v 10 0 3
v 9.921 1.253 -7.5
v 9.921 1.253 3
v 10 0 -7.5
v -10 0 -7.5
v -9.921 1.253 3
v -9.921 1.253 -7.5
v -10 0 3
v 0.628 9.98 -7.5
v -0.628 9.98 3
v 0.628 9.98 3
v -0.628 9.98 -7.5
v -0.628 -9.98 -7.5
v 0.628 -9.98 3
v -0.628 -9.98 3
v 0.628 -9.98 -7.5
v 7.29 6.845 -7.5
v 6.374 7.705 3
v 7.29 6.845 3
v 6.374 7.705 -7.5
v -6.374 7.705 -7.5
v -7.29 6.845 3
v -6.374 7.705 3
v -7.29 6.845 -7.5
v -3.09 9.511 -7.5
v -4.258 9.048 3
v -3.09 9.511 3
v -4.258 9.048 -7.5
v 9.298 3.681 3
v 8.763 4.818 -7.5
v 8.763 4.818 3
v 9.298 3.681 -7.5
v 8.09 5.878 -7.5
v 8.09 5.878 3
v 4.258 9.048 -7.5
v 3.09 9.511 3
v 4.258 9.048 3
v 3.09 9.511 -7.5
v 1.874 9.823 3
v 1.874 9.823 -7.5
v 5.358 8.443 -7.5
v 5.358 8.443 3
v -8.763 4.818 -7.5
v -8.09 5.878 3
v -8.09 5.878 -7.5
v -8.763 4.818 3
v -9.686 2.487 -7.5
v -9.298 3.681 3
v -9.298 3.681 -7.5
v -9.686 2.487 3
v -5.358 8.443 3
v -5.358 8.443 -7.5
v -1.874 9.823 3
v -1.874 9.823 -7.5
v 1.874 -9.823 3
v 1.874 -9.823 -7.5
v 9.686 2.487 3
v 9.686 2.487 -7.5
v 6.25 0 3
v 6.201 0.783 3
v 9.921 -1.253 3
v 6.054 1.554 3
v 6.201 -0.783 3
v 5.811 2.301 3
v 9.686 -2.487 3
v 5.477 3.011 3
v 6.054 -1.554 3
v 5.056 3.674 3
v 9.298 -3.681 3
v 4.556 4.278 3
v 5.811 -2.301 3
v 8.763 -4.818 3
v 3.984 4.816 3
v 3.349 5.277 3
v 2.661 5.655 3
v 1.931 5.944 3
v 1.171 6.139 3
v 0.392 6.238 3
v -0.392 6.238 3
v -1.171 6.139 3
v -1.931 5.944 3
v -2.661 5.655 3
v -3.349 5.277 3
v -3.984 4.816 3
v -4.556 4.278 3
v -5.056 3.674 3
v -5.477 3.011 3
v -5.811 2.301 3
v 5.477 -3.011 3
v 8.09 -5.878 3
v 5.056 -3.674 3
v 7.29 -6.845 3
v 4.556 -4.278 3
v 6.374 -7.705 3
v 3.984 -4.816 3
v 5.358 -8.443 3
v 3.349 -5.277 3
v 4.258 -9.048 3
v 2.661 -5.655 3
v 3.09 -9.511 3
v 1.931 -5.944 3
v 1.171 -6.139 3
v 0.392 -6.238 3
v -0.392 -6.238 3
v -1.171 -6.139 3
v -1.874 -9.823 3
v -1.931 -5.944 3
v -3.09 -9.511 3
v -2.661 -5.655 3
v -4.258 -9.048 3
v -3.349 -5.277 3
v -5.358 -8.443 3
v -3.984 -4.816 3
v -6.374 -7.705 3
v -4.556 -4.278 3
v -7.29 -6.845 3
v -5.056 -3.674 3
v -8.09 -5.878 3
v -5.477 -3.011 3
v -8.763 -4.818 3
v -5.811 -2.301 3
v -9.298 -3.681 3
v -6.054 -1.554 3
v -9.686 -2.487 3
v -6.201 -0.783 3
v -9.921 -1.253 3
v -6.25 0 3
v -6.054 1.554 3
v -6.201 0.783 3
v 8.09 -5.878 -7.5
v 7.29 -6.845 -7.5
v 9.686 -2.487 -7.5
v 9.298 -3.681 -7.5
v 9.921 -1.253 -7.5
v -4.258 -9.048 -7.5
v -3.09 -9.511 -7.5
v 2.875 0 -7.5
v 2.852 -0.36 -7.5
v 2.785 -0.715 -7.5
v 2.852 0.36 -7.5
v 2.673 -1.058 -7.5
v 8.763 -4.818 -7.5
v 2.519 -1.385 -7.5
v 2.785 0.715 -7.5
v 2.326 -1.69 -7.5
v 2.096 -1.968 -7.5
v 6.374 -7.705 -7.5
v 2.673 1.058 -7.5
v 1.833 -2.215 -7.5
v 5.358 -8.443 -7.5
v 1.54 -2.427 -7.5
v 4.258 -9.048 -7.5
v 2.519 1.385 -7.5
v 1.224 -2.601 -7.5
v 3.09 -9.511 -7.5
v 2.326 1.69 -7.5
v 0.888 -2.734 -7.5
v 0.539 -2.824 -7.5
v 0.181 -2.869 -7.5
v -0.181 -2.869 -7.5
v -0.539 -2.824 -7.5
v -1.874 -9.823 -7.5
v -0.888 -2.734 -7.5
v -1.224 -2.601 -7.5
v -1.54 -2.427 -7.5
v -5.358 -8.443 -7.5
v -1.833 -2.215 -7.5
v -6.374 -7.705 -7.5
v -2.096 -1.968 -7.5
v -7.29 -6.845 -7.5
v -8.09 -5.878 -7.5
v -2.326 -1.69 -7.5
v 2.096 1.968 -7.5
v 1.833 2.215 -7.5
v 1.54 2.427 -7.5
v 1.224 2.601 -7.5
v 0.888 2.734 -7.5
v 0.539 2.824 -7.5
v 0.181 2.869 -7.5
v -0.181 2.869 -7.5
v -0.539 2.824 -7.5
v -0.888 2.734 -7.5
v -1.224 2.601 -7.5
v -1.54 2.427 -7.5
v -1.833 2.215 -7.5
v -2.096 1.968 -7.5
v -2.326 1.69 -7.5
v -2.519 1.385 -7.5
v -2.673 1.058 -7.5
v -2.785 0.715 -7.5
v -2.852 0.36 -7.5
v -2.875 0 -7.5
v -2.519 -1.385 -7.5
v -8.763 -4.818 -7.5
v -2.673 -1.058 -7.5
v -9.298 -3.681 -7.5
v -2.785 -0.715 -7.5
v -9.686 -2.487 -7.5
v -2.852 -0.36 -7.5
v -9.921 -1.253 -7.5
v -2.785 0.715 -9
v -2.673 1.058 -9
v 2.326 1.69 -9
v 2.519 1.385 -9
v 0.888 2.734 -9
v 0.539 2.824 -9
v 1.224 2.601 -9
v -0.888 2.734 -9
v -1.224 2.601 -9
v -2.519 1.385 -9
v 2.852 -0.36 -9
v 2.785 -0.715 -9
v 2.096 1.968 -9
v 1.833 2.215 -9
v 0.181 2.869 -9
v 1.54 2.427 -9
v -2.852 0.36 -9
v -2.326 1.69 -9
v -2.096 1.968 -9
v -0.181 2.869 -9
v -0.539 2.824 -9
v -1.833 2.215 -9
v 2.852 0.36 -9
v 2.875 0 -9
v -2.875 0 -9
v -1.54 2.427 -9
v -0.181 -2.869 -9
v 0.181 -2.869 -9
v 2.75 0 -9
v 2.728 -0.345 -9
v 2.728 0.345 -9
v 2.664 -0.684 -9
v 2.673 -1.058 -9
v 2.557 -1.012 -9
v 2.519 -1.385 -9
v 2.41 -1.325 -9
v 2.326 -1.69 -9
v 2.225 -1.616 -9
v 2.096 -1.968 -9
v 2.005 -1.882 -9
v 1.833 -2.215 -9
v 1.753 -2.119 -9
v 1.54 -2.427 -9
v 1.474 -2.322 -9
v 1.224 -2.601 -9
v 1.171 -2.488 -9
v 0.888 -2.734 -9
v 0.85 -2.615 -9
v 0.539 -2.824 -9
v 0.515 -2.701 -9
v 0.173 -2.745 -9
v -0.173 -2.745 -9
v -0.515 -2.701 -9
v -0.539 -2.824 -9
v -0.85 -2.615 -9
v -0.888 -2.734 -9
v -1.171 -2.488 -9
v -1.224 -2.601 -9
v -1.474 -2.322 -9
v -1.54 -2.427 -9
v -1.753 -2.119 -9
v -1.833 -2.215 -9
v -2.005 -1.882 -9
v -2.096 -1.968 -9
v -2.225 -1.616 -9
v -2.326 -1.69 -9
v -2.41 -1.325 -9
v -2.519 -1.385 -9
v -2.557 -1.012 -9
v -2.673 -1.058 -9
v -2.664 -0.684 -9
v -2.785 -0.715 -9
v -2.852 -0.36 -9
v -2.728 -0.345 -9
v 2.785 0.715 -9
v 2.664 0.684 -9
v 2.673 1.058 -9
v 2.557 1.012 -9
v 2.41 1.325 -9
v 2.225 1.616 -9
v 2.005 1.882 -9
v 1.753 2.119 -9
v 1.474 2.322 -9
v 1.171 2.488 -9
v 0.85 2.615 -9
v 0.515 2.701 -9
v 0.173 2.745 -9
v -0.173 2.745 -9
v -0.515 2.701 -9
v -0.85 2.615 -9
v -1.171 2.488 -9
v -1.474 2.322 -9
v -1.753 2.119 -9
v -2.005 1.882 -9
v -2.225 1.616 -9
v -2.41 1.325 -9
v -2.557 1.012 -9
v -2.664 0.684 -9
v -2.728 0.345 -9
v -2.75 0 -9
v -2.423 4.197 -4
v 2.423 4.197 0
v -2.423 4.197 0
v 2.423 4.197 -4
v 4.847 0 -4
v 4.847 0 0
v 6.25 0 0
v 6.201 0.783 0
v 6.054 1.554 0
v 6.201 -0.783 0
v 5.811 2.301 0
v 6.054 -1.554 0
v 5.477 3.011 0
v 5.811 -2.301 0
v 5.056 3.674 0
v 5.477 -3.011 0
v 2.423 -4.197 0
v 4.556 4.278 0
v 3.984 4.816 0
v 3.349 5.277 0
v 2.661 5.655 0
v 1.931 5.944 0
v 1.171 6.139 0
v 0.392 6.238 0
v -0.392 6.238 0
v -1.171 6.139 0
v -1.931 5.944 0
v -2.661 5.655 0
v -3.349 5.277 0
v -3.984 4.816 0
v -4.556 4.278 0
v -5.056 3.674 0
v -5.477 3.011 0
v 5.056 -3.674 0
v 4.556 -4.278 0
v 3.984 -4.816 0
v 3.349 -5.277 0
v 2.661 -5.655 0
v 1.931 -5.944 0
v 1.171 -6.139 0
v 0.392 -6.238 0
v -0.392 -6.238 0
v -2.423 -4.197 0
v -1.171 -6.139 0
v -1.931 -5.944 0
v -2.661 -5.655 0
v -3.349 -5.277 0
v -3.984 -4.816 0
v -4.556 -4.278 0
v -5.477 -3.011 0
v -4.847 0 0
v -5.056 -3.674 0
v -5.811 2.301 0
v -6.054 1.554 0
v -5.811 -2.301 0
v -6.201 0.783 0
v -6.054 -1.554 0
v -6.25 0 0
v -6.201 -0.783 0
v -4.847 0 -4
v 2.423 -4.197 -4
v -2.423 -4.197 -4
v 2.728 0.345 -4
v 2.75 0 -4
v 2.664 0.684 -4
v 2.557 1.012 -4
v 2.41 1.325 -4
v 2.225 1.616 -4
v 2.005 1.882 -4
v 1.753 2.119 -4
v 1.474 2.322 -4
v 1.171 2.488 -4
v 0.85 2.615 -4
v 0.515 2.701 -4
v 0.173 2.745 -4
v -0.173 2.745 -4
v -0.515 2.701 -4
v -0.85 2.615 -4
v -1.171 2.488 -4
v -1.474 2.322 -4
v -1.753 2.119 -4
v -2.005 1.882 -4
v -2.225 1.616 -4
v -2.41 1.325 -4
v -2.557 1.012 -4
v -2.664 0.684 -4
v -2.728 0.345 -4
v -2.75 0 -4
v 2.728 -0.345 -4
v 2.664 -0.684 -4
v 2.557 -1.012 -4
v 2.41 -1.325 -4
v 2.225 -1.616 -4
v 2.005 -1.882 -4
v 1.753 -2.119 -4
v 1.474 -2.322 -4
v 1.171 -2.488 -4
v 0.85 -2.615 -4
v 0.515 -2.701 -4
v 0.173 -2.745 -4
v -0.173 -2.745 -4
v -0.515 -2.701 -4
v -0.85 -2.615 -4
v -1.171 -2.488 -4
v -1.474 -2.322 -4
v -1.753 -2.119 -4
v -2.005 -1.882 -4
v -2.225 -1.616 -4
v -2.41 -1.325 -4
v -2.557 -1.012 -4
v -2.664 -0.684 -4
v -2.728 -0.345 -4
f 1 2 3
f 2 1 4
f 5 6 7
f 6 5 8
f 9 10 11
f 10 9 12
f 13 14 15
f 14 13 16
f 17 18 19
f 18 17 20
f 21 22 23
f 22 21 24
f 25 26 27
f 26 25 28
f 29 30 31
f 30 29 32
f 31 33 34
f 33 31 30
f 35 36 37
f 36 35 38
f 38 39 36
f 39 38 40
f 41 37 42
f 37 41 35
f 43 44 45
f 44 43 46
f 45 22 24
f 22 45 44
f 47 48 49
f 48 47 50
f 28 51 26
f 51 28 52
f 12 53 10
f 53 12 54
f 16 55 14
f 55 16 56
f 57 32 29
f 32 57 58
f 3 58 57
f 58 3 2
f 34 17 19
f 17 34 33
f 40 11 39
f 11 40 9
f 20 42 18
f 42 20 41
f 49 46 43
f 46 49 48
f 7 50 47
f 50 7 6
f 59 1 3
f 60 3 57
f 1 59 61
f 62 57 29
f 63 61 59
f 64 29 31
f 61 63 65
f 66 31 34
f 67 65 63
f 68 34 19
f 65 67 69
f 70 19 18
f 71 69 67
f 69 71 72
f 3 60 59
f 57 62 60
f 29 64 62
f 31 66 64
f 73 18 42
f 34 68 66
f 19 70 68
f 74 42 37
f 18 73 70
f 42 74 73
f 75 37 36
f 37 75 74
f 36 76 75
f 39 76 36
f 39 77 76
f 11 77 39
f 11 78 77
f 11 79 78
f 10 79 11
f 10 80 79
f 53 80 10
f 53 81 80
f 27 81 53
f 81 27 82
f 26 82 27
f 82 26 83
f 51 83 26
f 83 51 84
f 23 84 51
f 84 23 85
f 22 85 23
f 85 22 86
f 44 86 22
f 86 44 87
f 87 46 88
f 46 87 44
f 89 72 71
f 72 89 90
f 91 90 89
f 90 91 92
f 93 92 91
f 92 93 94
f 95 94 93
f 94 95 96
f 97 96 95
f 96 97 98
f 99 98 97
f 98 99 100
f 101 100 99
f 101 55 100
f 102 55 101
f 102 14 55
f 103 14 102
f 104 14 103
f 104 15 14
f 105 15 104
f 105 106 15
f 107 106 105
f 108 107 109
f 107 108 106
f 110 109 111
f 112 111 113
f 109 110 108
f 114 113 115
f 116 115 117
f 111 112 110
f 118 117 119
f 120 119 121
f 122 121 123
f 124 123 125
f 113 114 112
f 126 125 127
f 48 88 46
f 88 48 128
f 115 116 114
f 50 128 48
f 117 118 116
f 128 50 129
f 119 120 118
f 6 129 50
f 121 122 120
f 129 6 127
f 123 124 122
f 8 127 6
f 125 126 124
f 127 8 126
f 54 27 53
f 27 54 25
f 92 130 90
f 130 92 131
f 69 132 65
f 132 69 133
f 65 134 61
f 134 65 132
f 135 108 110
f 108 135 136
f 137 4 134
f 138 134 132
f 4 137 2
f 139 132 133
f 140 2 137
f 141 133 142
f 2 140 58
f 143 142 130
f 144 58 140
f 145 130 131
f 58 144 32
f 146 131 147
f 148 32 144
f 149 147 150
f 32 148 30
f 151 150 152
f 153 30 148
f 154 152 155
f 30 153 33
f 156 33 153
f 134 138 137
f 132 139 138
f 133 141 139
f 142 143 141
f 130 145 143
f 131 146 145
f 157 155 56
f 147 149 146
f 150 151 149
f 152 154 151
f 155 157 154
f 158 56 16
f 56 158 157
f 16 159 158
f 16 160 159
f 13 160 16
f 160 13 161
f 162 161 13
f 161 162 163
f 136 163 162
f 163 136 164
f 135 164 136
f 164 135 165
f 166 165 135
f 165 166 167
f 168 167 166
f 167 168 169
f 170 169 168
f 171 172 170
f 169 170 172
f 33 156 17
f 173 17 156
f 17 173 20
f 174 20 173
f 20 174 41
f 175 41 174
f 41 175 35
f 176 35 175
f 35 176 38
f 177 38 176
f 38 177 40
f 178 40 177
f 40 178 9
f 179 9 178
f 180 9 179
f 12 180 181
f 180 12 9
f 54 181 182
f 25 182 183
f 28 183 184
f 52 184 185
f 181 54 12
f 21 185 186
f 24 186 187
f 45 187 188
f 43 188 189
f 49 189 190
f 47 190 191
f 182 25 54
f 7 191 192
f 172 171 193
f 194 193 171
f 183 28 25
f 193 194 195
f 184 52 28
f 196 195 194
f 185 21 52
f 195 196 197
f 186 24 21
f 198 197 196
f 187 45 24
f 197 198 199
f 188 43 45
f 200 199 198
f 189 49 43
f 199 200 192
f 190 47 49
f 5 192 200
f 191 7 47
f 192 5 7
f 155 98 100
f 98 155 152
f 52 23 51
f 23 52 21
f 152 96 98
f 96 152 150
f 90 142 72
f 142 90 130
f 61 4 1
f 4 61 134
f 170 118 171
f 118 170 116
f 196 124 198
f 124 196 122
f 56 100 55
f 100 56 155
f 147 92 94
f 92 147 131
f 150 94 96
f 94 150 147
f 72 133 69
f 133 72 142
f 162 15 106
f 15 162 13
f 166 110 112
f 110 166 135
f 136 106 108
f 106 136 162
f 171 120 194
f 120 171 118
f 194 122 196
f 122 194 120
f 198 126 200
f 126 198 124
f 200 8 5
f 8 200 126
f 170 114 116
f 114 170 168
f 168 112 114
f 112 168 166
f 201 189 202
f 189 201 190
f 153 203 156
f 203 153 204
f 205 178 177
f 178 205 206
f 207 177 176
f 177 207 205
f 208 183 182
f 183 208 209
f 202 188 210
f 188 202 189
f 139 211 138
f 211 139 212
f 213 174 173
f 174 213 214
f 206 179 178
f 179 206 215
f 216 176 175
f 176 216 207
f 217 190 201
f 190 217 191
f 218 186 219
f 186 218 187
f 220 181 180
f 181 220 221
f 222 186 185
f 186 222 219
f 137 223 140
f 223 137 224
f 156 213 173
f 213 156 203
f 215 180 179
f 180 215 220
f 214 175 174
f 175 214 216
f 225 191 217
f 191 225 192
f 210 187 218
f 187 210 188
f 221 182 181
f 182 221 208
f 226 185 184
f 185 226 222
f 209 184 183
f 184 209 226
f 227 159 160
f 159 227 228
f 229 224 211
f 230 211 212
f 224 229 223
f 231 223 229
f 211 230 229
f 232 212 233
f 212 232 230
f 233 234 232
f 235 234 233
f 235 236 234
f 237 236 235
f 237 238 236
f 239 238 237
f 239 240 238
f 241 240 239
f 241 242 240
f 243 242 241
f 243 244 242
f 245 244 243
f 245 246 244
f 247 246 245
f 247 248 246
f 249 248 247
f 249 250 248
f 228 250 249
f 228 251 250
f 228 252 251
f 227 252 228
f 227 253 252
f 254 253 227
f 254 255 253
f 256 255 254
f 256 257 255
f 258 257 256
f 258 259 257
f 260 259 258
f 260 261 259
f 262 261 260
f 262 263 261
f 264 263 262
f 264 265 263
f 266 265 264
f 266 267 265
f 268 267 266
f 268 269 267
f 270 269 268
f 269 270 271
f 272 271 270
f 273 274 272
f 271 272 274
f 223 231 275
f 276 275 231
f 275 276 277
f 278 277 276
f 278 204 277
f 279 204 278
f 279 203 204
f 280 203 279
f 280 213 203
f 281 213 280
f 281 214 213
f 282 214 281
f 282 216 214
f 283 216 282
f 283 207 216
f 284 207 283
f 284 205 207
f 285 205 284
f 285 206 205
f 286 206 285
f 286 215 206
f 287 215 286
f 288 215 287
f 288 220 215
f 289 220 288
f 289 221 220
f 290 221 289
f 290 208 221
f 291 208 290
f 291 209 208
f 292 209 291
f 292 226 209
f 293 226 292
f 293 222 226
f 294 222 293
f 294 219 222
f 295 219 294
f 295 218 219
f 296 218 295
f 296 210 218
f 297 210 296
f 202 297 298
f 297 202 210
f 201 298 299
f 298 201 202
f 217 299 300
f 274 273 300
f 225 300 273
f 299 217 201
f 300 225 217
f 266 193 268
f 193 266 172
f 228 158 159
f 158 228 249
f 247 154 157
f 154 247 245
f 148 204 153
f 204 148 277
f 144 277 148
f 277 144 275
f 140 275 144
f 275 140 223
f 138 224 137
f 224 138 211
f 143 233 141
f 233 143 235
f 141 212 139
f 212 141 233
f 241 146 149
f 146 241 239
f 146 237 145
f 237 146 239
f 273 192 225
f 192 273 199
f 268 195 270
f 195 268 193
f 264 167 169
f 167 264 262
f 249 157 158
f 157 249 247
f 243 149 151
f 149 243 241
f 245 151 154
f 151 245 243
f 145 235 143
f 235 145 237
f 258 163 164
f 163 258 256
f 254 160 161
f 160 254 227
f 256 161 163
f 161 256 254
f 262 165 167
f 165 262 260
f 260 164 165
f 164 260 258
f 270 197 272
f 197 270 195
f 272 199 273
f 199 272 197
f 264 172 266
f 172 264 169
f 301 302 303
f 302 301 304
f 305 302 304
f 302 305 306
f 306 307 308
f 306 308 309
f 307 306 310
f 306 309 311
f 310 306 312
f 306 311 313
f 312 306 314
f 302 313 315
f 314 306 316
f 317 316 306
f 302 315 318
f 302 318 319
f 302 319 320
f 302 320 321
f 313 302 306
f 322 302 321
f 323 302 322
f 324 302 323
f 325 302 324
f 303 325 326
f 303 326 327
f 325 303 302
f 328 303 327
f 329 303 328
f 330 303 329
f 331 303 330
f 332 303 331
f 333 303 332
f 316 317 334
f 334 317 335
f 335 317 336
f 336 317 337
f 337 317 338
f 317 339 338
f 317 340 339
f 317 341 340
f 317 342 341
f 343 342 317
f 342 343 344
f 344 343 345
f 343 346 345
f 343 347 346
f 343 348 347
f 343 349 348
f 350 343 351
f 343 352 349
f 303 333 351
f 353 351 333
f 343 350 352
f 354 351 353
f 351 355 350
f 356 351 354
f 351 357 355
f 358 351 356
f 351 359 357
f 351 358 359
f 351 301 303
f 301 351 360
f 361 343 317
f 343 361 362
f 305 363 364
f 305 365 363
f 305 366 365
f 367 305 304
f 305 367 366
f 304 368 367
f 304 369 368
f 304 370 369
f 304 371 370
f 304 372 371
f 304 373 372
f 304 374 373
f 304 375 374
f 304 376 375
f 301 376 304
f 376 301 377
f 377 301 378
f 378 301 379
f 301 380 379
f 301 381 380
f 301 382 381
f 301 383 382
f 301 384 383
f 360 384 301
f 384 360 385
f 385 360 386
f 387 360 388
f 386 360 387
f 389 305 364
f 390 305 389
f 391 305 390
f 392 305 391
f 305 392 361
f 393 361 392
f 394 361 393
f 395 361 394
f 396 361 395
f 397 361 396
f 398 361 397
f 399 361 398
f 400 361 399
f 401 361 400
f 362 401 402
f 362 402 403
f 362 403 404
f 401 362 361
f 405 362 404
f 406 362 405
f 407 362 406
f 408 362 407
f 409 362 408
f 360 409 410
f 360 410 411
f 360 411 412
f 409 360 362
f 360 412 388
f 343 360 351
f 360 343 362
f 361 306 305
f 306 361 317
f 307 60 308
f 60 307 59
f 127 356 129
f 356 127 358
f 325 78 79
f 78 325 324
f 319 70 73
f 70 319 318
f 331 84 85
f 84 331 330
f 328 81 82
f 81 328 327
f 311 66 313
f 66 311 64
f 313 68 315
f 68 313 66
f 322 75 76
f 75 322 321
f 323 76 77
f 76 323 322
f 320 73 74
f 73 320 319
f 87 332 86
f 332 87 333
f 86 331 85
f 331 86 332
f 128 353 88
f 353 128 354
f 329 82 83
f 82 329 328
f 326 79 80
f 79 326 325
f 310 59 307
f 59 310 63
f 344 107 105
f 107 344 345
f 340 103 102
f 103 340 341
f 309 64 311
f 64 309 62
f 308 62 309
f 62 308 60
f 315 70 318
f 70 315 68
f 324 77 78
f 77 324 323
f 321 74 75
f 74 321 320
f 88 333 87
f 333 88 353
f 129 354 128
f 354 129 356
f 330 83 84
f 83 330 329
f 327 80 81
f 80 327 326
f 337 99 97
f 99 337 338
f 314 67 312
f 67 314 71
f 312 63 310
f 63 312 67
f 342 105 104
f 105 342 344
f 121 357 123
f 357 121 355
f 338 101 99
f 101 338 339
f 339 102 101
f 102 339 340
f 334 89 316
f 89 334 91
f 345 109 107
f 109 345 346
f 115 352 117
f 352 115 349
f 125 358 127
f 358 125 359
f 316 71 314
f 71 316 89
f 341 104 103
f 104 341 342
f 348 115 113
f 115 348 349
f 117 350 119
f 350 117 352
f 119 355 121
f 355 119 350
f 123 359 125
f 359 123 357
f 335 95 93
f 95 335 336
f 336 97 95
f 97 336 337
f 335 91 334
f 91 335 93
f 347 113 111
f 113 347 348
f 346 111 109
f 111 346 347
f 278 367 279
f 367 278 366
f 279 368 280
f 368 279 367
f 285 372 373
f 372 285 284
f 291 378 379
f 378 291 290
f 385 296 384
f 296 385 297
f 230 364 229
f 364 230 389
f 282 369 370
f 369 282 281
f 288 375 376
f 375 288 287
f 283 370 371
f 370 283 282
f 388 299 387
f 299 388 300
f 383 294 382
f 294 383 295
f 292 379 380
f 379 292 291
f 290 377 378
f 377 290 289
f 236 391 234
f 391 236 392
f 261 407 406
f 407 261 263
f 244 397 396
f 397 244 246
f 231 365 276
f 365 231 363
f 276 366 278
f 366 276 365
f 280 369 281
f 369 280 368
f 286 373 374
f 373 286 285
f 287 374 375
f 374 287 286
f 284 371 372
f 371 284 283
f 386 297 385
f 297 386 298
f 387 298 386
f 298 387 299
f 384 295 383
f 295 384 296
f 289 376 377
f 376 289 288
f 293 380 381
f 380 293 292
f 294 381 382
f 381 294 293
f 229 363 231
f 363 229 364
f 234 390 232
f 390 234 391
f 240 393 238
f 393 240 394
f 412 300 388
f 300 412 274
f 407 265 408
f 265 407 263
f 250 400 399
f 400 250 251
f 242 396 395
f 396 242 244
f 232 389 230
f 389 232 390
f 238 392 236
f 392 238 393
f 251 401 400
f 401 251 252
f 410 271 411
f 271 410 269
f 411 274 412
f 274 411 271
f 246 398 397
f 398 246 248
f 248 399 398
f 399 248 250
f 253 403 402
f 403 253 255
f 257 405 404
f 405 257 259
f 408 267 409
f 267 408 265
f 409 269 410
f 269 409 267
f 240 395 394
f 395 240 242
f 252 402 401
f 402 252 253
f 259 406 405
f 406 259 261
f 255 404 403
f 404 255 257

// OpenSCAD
$fn = 50;

difference() {
	union() {
		translate(v = [0, 0, -7.5]) {
			cylinder(h = 10.5, r = 10.0);
		}
		#translate(v = [0, 0, -9.0]) {
			cylinder(h = 9, r = 2.875);
		}
	}
	union() {
		translate(v = [0, 0, 0]) {
			rotate(a = [0, 0, 0]) {
				difference() {
					union() {
						translate(v = [0, 0, -4]) {
							linear_extrude(height = 4) {
								polygon(points = [[4.8468, 0.0], [2.4234000000000004, 4.197451927062417], [-2.423399999999999, 4.197451927062417], [-4.8468, 5.935618106107392e-16], [-2.423400000000002, -4.197451927062416], [2.423399999999997, -4.197451927062419]]);
							}
						}
					}
					union();
				}
			}
		}
		#cylinder(h = 3, r = 6.25);
		#translate(v = [0, 0, -100.0]) {
			cylinder(h = 200, r = 2.75);
		}
	}
}
